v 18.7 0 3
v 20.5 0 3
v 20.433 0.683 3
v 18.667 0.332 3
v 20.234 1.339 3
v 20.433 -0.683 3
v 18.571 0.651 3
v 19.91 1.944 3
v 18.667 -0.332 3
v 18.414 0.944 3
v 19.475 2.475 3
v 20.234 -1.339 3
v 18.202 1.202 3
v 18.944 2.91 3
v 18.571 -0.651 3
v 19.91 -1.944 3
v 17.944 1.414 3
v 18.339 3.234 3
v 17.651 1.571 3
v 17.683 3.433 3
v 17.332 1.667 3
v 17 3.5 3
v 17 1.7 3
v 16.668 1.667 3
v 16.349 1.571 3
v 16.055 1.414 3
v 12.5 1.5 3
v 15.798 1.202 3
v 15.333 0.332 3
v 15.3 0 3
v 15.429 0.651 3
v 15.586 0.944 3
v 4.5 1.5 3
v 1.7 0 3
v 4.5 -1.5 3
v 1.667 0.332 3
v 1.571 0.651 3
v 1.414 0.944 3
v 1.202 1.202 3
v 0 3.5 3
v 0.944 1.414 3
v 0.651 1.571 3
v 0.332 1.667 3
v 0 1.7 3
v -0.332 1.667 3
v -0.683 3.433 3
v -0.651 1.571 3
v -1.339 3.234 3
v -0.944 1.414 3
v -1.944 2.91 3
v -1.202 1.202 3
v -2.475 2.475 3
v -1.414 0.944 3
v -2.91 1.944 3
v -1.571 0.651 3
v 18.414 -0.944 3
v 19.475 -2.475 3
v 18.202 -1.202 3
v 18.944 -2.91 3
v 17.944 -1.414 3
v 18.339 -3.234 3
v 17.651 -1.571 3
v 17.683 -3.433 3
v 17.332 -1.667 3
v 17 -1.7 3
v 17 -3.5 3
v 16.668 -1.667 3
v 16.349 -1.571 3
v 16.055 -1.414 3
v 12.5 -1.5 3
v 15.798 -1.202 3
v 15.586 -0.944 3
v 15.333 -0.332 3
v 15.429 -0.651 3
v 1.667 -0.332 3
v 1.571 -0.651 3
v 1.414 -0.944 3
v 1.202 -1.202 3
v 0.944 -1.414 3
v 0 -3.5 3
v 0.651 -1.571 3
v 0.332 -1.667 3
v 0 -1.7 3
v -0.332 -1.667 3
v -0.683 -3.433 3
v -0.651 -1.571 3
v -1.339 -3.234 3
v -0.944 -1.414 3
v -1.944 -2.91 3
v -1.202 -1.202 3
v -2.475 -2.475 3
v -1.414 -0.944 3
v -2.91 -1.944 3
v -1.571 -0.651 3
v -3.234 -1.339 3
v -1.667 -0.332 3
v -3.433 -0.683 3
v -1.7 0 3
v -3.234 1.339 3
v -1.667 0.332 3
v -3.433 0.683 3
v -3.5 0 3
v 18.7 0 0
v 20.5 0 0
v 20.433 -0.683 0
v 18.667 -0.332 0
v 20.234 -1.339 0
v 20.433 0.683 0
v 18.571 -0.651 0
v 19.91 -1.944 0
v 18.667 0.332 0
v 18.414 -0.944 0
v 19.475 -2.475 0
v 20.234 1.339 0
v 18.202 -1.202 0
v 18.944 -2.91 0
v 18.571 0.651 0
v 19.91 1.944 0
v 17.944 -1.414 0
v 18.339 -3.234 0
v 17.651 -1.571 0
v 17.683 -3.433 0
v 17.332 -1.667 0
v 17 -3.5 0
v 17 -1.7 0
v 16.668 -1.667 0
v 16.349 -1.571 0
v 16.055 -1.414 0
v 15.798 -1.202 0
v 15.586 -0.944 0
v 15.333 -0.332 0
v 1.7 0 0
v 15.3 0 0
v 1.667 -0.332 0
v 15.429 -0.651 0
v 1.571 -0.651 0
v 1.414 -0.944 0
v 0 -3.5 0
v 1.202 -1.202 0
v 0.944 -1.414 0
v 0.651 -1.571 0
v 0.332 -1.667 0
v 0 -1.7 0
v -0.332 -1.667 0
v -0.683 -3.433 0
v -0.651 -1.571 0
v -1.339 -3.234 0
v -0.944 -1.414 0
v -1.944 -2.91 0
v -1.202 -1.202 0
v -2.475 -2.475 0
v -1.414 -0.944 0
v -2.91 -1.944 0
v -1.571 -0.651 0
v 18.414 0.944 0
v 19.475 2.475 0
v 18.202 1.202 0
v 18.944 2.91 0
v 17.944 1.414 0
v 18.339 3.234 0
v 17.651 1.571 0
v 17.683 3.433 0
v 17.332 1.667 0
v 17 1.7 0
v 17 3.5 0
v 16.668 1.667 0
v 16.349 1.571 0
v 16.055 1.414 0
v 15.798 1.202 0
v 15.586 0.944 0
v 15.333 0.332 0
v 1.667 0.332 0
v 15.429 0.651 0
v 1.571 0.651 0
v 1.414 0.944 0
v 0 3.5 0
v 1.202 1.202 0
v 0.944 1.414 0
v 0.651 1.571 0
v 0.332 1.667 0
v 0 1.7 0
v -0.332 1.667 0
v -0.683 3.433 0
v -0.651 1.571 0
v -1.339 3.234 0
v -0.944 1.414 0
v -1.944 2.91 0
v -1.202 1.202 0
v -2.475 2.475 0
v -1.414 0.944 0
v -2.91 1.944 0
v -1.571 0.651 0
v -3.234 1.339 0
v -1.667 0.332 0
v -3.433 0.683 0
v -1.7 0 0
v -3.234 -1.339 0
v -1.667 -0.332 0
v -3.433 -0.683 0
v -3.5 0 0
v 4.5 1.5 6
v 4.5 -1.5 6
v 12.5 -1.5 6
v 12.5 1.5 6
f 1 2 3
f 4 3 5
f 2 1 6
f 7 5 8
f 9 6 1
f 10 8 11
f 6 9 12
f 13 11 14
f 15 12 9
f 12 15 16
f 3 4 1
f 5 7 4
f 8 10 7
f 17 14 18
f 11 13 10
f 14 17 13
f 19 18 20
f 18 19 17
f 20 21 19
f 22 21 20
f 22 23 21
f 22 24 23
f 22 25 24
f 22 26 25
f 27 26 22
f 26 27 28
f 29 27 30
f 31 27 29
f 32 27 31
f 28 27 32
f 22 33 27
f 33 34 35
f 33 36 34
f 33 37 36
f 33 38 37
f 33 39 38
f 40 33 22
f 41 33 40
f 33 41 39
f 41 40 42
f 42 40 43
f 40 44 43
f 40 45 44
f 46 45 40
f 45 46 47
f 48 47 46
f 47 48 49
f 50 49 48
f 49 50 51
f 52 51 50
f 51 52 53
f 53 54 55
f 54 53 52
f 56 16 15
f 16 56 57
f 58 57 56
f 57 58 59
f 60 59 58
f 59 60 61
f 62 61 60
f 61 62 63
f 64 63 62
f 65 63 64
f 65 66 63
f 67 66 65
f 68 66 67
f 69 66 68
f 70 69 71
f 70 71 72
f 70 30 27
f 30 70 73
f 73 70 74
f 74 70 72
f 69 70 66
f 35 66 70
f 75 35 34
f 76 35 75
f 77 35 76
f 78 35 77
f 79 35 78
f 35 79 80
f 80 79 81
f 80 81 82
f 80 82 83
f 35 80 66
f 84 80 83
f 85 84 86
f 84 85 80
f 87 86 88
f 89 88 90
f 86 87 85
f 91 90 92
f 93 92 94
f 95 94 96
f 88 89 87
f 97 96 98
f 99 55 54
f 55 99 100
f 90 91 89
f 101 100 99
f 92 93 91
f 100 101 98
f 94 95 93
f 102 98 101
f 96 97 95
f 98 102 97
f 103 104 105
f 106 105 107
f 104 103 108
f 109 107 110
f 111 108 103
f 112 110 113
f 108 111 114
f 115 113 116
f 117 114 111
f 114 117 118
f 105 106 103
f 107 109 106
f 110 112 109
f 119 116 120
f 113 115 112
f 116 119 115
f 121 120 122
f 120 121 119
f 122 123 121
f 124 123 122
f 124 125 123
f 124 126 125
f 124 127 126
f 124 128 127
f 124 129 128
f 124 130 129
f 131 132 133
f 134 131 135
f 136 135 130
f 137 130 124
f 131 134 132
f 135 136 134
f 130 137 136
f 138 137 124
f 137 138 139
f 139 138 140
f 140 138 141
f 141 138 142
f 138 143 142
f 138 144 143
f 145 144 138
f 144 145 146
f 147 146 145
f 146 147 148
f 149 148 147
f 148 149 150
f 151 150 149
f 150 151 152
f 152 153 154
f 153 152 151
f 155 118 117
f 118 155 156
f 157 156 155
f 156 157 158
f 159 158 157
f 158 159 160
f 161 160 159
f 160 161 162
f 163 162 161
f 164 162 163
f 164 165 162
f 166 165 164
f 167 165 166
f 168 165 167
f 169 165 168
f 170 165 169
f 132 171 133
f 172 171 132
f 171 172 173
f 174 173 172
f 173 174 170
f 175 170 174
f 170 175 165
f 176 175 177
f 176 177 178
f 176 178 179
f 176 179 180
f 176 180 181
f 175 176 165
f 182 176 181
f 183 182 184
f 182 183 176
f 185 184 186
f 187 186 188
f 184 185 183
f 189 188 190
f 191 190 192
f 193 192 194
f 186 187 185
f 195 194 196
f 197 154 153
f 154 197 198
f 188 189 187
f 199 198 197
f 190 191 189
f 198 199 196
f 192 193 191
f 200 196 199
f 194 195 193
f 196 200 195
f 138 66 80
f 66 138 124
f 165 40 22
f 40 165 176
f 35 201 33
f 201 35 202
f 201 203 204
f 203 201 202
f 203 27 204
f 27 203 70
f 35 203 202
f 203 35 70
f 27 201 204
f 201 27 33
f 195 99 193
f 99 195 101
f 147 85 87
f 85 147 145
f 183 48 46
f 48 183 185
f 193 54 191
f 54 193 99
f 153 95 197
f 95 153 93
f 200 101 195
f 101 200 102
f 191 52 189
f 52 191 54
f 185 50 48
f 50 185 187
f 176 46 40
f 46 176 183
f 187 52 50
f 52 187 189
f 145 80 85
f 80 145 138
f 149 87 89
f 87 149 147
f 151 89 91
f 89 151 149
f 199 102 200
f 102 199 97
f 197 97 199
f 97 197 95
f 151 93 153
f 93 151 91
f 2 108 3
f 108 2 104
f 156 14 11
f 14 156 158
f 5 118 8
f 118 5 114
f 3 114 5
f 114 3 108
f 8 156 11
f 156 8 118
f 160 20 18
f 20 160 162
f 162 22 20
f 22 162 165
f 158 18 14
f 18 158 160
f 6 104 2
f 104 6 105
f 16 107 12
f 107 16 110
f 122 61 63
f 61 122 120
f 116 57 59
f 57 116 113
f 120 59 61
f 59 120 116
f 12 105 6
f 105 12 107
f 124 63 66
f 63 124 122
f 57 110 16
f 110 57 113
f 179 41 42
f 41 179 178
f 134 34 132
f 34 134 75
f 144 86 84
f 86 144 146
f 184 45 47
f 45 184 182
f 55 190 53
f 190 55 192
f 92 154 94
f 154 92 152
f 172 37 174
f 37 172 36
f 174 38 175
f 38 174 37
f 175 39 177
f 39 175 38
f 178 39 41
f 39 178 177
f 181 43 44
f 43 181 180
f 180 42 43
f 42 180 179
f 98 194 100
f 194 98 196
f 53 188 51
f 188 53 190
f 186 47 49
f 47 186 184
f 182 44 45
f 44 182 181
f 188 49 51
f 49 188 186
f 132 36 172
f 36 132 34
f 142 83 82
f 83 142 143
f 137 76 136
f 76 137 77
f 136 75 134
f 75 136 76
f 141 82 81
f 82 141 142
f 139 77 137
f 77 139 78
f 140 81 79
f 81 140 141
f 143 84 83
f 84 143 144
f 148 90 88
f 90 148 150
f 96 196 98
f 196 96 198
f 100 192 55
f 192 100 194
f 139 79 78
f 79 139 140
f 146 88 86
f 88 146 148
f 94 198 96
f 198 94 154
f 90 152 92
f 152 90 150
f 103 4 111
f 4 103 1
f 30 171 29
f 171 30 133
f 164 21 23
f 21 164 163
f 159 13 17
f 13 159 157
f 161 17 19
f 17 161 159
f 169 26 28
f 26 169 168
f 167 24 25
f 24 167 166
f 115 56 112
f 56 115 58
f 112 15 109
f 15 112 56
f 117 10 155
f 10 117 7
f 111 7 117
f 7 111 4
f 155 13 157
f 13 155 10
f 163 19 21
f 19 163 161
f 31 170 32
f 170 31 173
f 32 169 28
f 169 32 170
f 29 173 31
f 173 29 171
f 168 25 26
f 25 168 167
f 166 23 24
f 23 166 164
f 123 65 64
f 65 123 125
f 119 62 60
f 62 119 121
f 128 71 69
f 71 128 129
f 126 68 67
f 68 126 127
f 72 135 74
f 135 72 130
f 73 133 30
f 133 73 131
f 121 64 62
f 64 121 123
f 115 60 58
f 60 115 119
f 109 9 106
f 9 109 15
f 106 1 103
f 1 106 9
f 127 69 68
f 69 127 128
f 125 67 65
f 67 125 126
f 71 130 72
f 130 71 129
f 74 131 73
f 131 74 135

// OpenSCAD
//-- arm_very_short_1a.scad by AndrewBCN - May 2015
//-- remix of thing #154834
//-- replaces Brazo.stl with slightly stronger part
//-- and with source file.
//-- GPL V3

arm_th=3;
arm_len=17;
arm_wi=7;
$fn=32;

//-- very, very short arm
//-- !

difference() {
  // arm
  union() {
    translate([arm_len/2,0,arm_th/2]) cube([arm_len,arm_wi,arm_th], center=true);
    translate([arm_len/2,0,1.5*arm_th]) cube([arm_len-9,arm_th,arm_th], center=true);
    translate([0,0,arm_th/2]) cylinder(r=arm_wi/2, h=arm_th, center=true);
    translate([arm_len,0,arm_th/2]) cylinder(r=arm_wi/2, h=arm_th, center=true);
  }
  // holes
  cylinder(r=3.4/2, h=3*arm_th, center=true);
  translate([arm_len,0,0]) cylinder(r=3.4/2, h=3*arm_th, center=true);
}
